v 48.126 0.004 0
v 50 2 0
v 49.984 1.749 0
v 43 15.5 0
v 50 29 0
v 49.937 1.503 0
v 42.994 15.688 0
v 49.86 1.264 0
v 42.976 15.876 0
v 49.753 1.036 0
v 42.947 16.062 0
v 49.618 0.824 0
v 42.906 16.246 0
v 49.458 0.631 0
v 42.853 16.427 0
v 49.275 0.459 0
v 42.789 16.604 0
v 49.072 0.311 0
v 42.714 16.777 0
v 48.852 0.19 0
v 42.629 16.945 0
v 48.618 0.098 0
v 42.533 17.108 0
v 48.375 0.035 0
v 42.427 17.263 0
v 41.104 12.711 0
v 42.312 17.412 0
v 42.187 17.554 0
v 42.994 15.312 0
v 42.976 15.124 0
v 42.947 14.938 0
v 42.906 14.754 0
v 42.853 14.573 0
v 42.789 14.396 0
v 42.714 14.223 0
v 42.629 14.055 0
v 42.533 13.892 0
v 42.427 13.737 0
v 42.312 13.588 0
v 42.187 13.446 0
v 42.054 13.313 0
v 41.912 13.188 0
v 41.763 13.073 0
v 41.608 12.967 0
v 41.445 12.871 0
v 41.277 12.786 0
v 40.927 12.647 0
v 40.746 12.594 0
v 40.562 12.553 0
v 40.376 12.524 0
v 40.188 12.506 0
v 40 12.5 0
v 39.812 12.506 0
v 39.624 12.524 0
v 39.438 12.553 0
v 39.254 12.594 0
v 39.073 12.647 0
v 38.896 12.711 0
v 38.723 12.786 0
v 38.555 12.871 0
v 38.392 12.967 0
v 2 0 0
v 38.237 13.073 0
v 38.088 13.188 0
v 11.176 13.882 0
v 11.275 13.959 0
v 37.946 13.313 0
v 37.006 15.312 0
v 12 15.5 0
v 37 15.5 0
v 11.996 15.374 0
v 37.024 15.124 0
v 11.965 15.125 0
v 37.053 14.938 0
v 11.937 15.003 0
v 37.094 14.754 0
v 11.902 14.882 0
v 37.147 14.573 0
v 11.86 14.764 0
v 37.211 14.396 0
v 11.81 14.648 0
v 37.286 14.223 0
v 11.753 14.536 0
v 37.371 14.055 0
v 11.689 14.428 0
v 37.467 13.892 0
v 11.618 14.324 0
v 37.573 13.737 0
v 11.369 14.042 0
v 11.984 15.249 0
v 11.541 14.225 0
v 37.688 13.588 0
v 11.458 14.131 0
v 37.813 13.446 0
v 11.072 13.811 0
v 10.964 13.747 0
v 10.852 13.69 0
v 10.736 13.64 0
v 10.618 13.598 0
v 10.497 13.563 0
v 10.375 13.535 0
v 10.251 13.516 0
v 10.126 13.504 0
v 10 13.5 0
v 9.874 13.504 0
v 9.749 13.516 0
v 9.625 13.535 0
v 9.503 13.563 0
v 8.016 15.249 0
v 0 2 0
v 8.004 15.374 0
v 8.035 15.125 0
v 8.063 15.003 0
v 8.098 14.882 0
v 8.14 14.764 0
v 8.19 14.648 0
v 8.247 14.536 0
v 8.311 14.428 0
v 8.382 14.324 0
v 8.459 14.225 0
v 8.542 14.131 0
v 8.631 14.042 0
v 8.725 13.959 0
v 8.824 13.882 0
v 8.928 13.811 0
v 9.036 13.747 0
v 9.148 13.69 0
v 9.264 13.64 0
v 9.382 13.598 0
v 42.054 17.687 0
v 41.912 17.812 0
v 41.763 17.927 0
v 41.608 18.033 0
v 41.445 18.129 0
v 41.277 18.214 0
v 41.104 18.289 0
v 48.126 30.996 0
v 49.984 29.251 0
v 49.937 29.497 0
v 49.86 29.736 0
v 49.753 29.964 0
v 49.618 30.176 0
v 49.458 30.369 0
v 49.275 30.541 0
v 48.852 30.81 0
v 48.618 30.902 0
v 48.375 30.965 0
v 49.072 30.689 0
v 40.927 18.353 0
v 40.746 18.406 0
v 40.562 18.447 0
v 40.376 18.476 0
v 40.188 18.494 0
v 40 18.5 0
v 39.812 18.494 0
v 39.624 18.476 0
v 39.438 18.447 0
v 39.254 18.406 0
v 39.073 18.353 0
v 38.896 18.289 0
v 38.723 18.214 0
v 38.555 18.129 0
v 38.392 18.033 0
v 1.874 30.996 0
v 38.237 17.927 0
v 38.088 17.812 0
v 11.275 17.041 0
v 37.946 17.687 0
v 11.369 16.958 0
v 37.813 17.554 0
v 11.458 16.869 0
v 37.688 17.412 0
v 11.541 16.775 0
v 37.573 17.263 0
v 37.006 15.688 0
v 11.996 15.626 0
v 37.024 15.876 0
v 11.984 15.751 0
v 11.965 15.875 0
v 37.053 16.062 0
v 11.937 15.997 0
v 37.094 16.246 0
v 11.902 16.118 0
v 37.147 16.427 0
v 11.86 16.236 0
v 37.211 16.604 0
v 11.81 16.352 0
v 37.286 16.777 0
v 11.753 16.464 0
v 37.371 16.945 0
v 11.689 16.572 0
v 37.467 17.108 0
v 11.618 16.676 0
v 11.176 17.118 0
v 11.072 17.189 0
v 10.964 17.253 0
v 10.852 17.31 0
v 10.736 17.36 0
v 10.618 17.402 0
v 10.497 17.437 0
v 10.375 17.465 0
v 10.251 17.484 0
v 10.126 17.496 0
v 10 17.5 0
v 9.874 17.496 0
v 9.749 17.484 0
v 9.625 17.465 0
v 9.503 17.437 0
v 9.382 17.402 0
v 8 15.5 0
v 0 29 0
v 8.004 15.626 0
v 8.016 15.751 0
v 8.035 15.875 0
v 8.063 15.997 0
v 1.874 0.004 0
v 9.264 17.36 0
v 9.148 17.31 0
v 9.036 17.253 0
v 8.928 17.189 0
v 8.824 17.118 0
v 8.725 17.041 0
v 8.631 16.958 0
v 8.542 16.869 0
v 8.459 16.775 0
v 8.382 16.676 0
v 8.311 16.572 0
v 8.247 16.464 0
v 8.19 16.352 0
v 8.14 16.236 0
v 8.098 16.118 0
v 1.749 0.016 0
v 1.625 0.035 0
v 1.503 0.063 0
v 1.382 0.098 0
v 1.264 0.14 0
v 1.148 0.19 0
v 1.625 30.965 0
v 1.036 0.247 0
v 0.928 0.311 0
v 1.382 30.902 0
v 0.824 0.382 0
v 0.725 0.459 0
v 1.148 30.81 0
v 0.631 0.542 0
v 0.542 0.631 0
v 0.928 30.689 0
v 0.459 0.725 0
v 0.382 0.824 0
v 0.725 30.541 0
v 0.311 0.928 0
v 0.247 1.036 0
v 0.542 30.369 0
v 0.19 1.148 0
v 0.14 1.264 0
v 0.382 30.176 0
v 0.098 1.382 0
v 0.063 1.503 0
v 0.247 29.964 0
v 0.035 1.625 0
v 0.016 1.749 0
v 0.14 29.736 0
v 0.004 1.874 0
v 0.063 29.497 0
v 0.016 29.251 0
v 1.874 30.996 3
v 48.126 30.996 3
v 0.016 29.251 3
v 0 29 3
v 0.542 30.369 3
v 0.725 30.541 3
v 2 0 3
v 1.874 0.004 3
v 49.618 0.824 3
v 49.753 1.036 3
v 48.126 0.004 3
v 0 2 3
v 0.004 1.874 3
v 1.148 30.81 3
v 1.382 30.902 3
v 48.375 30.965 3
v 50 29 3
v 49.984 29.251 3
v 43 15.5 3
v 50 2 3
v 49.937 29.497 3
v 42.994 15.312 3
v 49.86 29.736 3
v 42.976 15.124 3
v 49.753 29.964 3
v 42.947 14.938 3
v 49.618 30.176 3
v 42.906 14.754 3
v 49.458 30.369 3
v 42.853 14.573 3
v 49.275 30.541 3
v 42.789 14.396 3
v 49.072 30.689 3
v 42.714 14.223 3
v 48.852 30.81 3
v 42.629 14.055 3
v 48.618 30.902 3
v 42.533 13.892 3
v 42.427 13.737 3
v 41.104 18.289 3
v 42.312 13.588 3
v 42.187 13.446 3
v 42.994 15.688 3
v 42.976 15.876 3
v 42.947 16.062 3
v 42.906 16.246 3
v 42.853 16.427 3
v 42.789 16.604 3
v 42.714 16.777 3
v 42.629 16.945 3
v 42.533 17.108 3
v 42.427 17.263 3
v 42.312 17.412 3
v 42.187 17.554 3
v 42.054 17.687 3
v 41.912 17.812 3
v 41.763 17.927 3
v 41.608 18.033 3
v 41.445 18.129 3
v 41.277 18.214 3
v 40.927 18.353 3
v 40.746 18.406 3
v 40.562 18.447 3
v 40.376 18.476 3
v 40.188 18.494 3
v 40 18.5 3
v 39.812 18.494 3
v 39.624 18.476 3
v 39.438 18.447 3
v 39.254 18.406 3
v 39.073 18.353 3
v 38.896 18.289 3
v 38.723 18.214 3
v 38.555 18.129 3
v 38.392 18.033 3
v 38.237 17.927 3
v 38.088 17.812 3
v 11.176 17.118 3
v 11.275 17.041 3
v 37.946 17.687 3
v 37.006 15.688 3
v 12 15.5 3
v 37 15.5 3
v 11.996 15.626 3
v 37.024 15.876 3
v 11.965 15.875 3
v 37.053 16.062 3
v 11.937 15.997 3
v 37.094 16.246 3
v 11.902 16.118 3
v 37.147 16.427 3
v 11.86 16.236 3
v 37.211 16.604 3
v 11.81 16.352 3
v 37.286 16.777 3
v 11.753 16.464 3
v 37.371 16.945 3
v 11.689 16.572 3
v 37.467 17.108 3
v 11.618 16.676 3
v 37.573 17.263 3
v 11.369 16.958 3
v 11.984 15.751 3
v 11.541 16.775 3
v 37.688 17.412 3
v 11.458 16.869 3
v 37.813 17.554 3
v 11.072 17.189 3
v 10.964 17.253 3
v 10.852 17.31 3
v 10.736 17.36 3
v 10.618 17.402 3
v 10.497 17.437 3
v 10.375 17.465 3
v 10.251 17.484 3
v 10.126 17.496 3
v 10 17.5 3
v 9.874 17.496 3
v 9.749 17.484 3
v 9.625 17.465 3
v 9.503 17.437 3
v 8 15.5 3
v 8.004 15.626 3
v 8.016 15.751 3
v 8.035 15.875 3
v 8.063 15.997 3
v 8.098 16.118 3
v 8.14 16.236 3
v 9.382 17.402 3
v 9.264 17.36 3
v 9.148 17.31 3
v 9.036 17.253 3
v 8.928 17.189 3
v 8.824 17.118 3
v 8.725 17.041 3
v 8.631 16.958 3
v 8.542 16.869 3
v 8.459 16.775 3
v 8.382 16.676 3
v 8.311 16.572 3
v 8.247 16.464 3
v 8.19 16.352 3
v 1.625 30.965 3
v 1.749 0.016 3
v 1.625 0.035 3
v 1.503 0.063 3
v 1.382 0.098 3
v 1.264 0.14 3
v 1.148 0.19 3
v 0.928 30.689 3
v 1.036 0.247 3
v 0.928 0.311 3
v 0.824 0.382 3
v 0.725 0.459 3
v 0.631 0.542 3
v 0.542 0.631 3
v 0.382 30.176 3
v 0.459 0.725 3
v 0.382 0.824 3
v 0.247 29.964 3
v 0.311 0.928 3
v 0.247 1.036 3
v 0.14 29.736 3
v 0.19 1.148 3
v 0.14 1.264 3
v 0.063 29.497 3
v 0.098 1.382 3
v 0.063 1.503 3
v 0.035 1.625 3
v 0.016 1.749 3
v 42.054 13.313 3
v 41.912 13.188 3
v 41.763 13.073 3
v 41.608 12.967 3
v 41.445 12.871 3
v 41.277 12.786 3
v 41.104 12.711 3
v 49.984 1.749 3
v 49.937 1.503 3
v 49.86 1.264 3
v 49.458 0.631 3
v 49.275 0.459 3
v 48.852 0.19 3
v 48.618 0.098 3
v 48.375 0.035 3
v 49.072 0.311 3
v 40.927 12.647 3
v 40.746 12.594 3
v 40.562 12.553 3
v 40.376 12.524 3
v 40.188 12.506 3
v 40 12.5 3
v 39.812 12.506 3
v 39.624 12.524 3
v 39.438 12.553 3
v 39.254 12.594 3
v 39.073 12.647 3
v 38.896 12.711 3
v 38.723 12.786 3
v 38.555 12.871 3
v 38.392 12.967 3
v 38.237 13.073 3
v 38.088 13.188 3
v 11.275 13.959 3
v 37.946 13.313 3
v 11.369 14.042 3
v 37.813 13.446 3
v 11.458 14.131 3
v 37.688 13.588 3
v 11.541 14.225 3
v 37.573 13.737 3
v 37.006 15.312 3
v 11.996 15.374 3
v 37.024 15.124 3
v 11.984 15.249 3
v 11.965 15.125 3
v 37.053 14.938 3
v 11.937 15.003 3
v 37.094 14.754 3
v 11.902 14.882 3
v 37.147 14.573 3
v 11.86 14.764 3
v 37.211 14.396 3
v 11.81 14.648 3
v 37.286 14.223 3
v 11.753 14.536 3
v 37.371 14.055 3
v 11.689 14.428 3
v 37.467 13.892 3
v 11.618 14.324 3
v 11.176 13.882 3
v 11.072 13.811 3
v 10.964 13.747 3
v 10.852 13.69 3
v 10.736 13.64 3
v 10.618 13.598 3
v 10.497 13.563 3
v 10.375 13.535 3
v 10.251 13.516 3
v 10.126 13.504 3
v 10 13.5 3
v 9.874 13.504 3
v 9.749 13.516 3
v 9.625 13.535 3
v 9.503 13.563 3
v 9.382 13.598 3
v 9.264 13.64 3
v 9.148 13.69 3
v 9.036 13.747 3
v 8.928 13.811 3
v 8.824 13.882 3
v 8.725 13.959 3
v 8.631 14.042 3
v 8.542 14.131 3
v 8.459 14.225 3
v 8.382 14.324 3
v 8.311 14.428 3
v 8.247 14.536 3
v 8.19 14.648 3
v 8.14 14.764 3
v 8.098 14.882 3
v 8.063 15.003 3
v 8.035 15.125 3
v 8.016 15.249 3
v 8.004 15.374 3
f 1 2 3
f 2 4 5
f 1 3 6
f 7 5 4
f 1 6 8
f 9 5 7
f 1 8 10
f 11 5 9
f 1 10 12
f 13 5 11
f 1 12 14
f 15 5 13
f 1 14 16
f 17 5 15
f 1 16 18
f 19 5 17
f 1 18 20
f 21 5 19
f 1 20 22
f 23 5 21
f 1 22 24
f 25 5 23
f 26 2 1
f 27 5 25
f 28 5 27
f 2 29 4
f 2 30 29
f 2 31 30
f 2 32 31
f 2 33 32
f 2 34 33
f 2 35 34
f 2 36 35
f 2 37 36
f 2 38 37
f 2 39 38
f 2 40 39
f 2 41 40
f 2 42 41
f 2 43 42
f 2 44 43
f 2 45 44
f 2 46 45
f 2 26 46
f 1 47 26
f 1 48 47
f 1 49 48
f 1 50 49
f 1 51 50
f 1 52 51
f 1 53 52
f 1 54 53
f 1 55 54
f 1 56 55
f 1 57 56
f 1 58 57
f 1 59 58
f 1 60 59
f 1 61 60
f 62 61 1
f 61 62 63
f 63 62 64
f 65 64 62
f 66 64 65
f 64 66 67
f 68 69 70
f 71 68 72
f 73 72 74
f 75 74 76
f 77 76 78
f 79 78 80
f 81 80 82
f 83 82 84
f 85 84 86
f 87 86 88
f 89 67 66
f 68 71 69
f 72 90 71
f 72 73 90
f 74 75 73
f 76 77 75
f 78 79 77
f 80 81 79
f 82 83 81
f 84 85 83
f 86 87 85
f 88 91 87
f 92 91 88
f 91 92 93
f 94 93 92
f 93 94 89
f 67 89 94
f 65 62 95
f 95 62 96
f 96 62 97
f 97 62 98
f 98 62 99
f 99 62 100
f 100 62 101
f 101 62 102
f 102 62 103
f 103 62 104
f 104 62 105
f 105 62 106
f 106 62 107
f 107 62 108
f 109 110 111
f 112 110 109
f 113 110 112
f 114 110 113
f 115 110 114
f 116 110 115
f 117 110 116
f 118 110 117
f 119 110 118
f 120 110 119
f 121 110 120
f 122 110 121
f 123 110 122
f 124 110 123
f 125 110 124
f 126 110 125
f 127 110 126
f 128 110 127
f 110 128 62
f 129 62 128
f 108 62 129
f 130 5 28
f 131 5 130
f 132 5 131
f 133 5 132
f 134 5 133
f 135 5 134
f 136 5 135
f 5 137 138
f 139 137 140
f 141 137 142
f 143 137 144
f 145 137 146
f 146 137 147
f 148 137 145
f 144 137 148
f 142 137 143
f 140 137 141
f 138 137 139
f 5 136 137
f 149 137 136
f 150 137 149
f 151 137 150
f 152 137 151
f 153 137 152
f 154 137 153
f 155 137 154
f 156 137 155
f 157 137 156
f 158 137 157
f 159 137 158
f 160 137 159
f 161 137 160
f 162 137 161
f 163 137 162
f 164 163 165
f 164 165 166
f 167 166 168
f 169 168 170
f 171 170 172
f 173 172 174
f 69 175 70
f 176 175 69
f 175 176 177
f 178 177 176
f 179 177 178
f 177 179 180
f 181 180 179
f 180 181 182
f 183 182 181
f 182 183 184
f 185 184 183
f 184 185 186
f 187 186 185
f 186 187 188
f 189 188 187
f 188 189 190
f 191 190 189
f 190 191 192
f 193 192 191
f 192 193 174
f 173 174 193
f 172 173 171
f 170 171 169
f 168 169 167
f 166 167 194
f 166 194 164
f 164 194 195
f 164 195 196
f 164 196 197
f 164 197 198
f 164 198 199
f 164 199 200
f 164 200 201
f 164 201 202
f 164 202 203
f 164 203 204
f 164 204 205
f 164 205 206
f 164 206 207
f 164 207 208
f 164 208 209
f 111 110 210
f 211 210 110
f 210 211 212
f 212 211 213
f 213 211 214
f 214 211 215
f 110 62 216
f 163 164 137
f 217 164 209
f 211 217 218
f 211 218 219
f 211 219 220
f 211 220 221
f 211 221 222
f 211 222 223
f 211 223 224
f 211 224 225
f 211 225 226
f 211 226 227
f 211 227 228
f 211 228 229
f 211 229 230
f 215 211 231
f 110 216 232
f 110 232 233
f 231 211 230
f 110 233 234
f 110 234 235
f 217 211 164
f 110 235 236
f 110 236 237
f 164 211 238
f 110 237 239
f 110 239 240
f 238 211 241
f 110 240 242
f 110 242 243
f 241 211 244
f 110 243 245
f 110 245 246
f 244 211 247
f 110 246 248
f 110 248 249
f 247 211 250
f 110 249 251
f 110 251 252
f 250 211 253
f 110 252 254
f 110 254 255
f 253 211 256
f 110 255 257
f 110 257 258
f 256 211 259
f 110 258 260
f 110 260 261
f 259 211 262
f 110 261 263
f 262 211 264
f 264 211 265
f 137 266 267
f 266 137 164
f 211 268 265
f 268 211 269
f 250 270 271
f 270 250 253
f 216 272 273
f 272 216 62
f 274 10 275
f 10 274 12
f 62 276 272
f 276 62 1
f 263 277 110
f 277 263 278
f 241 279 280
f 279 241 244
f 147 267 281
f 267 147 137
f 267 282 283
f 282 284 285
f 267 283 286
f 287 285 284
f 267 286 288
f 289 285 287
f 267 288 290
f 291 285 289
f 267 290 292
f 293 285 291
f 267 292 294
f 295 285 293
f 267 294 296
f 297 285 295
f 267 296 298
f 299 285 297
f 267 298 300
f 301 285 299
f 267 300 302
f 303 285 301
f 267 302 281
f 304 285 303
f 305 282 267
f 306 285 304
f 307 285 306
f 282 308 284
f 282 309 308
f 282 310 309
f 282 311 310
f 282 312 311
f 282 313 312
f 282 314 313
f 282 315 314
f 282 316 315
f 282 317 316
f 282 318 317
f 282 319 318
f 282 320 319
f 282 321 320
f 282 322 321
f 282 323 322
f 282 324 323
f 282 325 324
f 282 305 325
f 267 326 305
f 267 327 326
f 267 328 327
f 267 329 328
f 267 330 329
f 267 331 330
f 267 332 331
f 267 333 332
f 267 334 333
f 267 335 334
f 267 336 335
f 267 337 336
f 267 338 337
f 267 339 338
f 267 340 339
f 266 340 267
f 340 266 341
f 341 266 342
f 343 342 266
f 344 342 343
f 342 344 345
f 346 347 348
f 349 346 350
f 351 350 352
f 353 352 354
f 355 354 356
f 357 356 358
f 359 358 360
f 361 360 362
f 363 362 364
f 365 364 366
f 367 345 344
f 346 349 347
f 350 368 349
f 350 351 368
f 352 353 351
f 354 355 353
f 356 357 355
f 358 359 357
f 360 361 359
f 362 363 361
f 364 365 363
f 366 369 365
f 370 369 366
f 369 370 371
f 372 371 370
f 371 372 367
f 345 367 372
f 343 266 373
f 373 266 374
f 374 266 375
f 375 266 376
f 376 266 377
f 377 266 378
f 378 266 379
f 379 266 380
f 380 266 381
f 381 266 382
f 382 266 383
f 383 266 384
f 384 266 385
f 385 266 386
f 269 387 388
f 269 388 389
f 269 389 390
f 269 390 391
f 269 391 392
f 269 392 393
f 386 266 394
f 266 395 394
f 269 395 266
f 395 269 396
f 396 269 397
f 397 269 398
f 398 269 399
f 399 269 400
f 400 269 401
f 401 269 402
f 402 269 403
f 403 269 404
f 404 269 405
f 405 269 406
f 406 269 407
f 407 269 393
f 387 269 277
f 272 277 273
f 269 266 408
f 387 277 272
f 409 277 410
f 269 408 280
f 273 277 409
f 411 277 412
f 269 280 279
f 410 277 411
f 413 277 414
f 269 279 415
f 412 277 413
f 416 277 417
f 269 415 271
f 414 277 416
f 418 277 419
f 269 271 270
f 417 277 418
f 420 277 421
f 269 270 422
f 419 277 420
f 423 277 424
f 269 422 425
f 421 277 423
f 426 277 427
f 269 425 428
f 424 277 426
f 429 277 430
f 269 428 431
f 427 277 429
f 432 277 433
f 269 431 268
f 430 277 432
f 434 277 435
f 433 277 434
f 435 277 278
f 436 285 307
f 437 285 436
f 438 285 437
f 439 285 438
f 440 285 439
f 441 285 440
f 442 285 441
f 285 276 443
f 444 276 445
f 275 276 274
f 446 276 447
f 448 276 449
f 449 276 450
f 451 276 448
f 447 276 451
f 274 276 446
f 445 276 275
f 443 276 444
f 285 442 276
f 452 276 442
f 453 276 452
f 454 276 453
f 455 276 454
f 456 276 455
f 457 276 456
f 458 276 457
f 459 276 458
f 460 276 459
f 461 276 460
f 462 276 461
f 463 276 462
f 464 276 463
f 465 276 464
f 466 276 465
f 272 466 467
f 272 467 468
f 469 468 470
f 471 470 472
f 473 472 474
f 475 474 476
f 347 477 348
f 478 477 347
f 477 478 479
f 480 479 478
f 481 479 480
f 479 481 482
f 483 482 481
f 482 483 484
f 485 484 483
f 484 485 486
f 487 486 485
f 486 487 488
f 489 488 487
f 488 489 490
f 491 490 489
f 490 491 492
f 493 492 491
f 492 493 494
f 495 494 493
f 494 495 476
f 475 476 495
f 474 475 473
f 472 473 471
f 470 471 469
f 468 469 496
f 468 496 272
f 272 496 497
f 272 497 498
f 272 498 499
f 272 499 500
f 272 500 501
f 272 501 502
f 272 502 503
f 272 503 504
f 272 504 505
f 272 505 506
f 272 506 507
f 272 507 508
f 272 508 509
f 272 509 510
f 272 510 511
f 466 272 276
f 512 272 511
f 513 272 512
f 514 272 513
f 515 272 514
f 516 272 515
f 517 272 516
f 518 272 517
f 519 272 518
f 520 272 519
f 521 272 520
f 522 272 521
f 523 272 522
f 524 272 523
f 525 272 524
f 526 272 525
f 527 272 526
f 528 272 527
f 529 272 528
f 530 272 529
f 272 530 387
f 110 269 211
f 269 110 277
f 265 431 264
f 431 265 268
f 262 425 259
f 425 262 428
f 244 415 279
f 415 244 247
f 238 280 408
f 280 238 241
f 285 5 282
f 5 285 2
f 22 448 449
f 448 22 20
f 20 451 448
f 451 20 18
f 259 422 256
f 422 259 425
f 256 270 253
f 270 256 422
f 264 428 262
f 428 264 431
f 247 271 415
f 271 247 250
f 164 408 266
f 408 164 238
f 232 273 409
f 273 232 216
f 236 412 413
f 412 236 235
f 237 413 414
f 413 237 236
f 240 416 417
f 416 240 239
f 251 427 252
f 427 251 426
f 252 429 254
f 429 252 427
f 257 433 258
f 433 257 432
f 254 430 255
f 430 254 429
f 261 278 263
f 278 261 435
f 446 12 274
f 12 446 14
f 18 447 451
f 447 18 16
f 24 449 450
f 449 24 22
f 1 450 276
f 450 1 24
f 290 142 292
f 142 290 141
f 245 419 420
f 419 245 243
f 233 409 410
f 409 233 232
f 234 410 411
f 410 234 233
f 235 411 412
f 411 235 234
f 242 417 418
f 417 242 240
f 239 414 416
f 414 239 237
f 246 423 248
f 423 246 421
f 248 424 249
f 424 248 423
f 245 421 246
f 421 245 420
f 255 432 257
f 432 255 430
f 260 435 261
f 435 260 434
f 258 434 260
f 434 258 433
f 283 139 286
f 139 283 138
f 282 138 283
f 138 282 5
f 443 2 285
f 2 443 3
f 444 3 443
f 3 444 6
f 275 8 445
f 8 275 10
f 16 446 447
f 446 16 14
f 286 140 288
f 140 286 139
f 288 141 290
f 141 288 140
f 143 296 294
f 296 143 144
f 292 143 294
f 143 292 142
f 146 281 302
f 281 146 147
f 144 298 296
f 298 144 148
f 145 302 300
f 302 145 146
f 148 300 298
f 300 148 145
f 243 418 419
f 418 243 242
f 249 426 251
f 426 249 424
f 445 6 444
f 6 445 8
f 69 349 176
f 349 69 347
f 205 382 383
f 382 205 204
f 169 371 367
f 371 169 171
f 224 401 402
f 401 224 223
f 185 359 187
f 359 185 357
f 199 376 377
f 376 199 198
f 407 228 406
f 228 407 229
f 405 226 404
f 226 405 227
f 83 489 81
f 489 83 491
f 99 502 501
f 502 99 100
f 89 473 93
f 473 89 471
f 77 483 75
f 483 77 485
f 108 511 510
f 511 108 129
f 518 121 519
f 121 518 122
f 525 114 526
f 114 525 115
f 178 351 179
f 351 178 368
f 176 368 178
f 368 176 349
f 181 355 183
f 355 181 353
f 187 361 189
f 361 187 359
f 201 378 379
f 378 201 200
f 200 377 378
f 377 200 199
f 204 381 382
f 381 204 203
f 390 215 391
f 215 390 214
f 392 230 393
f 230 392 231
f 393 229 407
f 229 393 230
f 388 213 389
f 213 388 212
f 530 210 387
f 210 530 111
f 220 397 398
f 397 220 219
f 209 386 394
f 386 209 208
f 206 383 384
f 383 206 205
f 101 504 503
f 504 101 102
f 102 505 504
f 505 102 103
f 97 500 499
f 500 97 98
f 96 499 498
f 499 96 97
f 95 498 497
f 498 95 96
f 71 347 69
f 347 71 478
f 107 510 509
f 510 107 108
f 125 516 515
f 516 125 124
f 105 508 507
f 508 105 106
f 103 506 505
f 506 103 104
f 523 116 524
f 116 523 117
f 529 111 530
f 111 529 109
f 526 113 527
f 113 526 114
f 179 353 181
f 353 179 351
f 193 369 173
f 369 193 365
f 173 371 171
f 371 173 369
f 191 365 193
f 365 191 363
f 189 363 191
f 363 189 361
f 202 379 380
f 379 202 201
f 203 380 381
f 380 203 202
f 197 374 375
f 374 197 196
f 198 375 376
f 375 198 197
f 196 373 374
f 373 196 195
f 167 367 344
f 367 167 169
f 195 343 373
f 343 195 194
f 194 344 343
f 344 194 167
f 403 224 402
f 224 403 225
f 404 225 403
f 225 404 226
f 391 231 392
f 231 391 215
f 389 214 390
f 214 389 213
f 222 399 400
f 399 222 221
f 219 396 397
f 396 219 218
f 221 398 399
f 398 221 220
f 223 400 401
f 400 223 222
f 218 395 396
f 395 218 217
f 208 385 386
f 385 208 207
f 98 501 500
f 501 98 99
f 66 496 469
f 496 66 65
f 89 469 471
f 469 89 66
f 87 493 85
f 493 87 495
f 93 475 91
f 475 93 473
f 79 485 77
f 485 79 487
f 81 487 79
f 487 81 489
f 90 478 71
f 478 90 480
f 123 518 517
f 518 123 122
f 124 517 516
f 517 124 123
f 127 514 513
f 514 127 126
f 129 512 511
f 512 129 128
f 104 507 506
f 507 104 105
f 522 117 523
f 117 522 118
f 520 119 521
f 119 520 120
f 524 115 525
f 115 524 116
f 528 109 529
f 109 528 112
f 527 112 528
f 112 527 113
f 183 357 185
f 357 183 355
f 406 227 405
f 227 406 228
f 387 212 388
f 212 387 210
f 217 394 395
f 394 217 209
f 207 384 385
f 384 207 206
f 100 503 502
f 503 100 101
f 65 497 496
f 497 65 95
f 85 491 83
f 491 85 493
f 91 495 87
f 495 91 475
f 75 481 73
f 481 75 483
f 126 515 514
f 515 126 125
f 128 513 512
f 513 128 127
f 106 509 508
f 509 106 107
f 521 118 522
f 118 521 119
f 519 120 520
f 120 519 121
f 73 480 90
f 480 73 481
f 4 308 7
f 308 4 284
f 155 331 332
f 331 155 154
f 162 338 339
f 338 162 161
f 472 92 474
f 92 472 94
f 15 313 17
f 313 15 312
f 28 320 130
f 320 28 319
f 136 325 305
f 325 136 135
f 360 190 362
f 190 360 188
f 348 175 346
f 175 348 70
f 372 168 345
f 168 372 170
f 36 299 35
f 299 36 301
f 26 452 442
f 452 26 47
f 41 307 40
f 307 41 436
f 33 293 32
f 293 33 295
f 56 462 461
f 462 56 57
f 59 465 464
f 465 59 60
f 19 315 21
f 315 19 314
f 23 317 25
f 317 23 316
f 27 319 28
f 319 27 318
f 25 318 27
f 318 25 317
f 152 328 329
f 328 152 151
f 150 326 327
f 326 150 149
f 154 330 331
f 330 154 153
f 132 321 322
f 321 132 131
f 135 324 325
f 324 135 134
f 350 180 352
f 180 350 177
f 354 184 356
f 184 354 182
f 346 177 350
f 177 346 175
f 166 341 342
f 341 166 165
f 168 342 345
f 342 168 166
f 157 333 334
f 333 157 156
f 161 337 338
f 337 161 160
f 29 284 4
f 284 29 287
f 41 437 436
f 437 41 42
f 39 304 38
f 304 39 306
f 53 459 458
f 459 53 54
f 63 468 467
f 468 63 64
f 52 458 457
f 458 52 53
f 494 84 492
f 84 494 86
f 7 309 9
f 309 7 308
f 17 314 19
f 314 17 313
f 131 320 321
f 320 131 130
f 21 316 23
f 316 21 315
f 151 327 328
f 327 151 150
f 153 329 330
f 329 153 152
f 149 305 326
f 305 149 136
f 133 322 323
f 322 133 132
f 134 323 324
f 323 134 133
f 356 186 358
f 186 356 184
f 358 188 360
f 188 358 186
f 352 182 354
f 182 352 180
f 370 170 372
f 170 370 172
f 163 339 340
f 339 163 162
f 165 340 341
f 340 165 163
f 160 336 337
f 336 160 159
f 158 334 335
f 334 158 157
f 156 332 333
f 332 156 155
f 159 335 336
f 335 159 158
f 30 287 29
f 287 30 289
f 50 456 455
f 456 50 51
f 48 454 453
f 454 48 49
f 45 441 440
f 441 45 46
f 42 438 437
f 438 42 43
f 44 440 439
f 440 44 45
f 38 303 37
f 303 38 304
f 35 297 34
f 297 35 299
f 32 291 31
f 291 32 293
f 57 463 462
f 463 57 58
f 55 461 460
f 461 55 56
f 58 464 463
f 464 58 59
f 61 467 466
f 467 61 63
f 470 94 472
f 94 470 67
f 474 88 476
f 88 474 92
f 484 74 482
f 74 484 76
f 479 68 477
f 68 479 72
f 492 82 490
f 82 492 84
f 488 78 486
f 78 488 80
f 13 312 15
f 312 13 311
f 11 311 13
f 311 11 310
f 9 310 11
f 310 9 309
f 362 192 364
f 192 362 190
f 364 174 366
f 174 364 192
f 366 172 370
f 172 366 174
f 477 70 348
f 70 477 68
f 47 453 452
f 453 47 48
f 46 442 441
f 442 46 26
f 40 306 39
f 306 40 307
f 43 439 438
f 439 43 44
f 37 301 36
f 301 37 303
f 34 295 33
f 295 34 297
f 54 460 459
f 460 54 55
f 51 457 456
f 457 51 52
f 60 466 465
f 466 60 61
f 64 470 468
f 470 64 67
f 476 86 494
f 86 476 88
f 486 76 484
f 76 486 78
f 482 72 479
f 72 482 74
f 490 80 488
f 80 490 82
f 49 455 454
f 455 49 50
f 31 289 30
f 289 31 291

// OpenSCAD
r_arr=2;

longueur=50;
largeur=31;
ep_plaque=3;

module patte(){
    difference(){
        hull(){
            translate([r_arr,r_arr,0]){cylinder(h = ep_plaque, r = r_arr, $fn=100);}
            translate([longueur-r_arr,r_arr,0]){cylinder(r=r_arr, h=ep_plaque, $fn=50);}
                translate([longueur-r_arr,largeur-r_arr,0]){cylinder(r=r_arr, h=ep_plaque, $fn=50);}
                translate([r_arr,largeur-r_arr,0]){cylinder(r=r_arr, h=ep_plaque, $fn=50);}
        }
        
        //trous de montage
        translate([longueur/2-15,largeur/2,-5]){cylinder(h = 20, r = 2, $fn=100);}
        translate([longueur/2+15,largeur/2,-5]){cylinder(h = 20, r = 3, $fn=100);}
    }
}

patte();
